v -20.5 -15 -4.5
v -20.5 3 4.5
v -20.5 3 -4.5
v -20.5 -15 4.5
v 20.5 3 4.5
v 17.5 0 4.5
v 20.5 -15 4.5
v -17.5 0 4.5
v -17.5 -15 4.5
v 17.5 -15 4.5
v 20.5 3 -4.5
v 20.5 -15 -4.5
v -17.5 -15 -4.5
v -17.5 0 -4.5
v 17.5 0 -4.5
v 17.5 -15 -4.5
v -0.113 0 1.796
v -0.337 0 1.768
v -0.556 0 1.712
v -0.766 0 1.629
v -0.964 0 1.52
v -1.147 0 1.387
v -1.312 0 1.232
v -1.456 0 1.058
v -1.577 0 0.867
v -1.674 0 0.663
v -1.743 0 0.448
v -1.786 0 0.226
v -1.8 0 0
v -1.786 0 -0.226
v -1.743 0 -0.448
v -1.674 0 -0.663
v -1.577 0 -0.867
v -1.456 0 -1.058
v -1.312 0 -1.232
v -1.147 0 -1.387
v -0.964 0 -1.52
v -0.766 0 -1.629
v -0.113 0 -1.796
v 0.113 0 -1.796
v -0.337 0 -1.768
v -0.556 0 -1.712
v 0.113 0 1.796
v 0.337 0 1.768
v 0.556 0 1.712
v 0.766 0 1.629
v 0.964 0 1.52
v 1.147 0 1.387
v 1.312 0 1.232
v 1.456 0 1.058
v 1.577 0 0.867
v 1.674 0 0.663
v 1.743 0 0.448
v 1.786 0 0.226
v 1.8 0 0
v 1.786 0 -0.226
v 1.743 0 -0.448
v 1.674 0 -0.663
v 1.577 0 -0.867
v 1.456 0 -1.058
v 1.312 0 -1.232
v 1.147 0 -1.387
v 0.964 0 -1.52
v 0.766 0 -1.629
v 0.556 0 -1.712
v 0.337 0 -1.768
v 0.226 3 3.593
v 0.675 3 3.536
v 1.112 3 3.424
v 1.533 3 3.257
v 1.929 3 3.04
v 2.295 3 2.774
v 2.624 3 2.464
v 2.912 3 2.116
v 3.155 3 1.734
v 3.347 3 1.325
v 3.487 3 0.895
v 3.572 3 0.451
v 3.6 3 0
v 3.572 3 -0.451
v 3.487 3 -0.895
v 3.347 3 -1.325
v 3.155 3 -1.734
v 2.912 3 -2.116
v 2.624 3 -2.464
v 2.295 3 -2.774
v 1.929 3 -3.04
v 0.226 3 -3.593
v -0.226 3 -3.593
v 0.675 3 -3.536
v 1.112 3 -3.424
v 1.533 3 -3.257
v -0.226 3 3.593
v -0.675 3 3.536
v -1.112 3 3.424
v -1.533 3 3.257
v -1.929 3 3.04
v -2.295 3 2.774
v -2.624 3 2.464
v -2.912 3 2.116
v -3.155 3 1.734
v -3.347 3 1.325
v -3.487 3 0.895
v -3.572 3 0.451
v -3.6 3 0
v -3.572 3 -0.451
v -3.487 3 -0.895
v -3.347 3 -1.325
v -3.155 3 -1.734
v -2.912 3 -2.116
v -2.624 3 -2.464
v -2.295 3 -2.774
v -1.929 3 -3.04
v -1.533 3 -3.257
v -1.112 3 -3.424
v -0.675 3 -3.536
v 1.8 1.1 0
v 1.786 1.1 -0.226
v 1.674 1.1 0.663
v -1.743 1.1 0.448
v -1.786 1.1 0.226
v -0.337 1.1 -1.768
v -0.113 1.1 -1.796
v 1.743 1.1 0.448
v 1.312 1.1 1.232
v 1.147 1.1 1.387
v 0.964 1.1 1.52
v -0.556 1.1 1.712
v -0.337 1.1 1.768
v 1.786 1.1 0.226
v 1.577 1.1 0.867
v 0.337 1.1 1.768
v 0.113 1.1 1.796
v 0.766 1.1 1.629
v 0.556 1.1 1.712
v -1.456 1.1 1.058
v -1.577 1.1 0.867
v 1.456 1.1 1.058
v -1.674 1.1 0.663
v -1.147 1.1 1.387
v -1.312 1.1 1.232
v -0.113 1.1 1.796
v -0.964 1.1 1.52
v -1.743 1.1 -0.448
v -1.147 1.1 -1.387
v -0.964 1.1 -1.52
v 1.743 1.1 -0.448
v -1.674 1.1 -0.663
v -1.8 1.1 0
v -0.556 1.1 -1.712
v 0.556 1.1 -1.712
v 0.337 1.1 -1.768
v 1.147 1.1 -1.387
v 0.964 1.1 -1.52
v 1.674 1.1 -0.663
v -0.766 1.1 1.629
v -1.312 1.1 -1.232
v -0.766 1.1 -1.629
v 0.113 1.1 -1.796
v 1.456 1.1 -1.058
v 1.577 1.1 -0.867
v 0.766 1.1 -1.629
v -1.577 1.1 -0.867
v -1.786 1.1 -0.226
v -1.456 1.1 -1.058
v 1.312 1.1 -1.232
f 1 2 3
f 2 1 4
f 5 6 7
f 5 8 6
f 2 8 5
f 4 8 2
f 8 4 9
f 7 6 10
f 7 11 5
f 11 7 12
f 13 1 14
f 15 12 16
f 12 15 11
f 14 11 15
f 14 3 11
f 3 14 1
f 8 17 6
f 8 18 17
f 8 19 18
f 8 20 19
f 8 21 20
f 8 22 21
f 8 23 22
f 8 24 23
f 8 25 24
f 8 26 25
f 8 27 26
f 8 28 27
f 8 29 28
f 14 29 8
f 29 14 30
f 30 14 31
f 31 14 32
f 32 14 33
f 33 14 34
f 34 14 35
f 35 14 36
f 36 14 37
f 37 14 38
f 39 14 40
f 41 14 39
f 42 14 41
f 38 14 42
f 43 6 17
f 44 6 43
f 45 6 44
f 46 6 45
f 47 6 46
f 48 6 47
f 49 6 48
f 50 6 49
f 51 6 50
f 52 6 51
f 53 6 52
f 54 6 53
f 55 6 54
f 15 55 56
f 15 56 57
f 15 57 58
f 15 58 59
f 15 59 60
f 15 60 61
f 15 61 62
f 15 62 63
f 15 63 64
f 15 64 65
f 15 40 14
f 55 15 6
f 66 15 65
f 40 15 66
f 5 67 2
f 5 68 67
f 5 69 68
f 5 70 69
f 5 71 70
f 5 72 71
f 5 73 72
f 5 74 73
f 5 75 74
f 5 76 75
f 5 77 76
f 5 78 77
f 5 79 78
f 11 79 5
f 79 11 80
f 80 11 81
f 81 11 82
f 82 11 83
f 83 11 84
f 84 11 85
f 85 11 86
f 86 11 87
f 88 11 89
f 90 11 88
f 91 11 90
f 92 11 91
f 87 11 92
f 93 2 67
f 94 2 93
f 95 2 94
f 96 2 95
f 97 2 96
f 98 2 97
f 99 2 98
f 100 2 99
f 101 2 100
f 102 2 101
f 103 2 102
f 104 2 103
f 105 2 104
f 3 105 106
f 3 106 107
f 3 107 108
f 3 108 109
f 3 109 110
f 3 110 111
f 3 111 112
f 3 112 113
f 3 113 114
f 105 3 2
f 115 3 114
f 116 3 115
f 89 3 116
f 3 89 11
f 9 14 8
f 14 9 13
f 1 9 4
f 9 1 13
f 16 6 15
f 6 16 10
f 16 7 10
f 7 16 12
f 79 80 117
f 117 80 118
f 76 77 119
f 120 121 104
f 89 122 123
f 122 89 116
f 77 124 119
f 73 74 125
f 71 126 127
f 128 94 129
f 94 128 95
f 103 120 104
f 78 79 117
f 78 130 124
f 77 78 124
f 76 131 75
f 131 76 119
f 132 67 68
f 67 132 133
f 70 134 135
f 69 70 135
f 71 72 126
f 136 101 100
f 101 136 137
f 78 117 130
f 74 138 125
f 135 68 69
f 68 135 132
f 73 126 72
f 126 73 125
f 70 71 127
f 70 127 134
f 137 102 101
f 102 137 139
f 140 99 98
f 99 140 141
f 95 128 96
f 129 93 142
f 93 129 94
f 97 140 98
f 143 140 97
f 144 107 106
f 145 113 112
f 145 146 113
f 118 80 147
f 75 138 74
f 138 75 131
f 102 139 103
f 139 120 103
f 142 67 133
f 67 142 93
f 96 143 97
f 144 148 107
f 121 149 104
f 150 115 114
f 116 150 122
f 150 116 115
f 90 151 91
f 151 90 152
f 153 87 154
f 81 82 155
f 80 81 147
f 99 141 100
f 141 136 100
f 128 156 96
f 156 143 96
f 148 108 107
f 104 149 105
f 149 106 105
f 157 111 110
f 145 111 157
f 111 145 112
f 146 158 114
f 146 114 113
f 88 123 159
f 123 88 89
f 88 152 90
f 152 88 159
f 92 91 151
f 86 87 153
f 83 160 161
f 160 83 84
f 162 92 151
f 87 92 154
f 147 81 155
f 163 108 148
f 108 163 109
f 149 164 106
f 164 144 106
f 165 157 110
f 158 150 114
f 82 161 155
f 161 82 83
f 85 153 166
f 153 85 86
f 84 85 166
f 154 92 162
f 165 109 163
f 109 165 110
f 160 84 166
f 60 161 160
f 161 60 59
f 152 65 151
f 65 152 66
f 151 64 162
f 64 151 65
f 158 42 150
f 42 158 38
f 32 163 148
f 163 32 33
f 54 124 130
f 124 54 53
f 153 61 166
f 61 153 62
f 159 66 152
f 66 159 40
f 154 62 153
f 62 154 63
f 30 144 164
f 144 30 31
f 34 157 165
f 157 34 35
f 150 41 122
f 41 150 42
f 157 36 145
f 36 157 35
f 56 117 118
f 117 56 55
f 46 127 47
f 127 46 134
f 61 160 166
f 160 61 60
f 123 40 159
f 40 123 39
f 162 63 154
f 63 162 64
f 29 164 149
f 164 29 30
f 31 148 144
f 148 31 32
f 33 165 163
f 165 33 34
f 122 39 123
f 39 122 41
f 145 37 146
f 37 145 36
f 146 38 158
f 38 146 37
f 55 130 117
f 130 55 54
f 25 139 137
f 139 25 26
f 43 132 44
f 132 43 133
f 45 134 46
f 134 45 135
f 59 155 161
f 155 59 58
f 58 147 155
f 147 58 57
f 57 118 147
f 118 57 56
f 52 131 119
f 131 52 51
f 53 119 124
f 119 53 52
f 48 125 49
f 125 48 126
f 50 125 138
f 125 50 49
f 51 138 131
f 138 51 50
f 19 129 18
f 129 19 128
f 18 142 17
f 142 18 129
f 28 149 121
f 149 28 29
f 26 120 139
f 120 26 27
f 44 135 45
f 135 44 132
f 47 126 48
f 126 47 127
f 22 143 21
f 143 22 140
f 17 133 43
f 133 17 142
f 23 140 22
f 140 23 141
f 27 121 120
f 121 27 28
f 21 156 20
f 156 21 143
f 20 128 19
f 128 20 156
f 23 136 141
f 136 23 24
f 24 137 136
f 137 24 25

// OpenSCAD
$fn = 50;


difference() {
	union() {
		translate(v = [-20.5000000000, 0.0000000000, -4.5000000000]) {
			cube(size = [41, 3, 9]);
		}
		translate(v = [-20.5000000000, -15.0000000000, -4.5000000000]) {
			cube(size = [3, 15, 9]);
		}
		translate(v = [17.5000000000, -15.0000000000, -4.5000000000]) {
			cube(size = [3, 15, 9]);
		}
	}
	union() {
		translate(v = [0, 3, 0]) {
			rotate(a = [-90, 0, 0]) {
				difference() {
					union() {
						translate(v = [0, 0, -21.0000000000]) {
							rotate(a = [0, 0, 0]) {
								difference() {
									union() {
										translate(v = [-1.8000000000, -3.0000000000, -0.3000000000]) {
											cube(size = [3.6000000000, 6.0000000000, 0.3000000000]);
										}
										translate(v = [-1.8000000000, -1.8000000000, -0.6000000000]) {
											cube(size = [3.6000000000, 3.6000000000, 0.3000000000]);
										}
										translate(v = [-1.8000000000, -3.0000000000, 2.5000000000]) {
											cube(size = [3.6000000000, 6.0000000000, 0.3000000000]);
										}
										translate(v = [-1.8000000000, -1.8000000000, 2.8000000000]) {
											cube(size = [3.6000000000, 3.6000000000, 0.3000000000]);
										}
										linear_extrude(height = 2.5000000000) {
											polygon(points = [[3.4620000000, 0.0000000000], [1.7310000000, 2.9981799479], [-1.7310000000, 2.9981799479], [-3.4620000000, 0.0000000000], [-1.7310000000, -2.9981799479], [1.7310000000, -2.9981799479]]);
										}
										translate(v = [-1.8000000000, -3.0000000000, -0.3000000000]) {
											cube(size = [3.6000000000, 6.0000000000, 0.3000000000]);
										}
										translate(v = [-1.8000000000, -1.8000000000, -0.6000000000]) {
											cube(size = [3.6000000000, 3.6000000000, 0.3000000000]);
										}
										translate(v = [-1.8000000000, -3.0000000000, 2.5000000000]) {
											cube(size = [3.6000000000, 6.0000000000, 0.3000000000]);
										}
										translate(v = [-1.8000000000, -1.8000000000, 2.8000000000]) {
											cube(size = [3.6000000000, 3.6000000000, 0.3000000000]);
										}
										translate(v = [-1.8000000000, -3.0000000000, -0.3000000000]) {
											cube(size = [3.6000000000, 6.0000000000, 0.3000000000]);
										}
										translate(v = [-1.8000000000, -1.8000000000, -0.6000000000]) {
											cube(size = [3.6000000000, 3.6000000000, 0.3000000000]);
										}
										translate(v = [-1.8000000000, -3.0000000000, 2.5000000000]) {
											cube(size = [3.6000000000, 6.0000000000, 0.3000000000]);
										}
										translate(v = [-1.8000000000, -1.8000000000, 2.8000000000]) {
											cube(size = [3.6000000000, 3.6000000000, 0.3000000000]);
										}
									}
									union();
								}
							}
						}
						translate(v = [0, 0, -21.0000000000]) {
							rotate(a = [0, 0, 0]) {
								difference() {
									union() {
										translate(v = [-1.8000000000, -3.0000000000, -0.3000000000]) {
											cube(size = [3.6000000000, 6.0000000000, 0.3000000000]);
										}
										translate(v = [-1.8000000000, -1.8000000000, -0.6000000000]) {
											cube(size = [3.6000000000, 3.6000000000, 0.3000000000]);
										}
										translate(v = [-1.8000000000, -3.0000000000, 2.5000000000]) {
											cube(size = [3.6000000000, 6.0000000000, 0.3000000000]);
										}
										translate(v = [-1.8000000000, -1.8000000000, 2.8000000000]) {
											cube(size = [3.6000000000, 3.6000000000, 0.3000000000]);
										}
										linear_extrude(height = 2.5000000000) {
											polygon(points = [[3.4620000000, 0.0000000000], [1.7310000000, 2.9981799479], [-1.7310000000, 2.9981799479], [-3.4620000000, 0.0000000000], [-1.7310000000, -2.9981799479], [1.7310000000, -2.9981799479]]);
										}
										translate(v = [-1.8000000000, -3.0000000000, -0.3000000000]) {
											cube(size = [3.6000000000, 6.0000000000, 0.3000000000]);
										}
										translate(v = [-1.8000000000, -1.8000000000, -0.6000000000]) {
											cube(size = [3.6000000000, 3.6000000000, 0.3000000000]);
										}
										translate(v = [-1.8000000000, -3.0000000000, 2.5000000000]) {
											cube(size = [3.6000000000, 6.0000000000, 0.3000000000]);
										}
										translate(v = [-1.8000000000, -1.8000000000, 2.8000000000]) {
											cube(size = [3.6000000000, 3.6000000000, 0.3000000000]);
										}
										translate(v = [-1.8000000000, -3.0000000000, -0.3000000000]) {
											cube(size = [3.6000000000, 6.0000000000, 0.3000000000]);
										}
										translate(v = [-1.8000000000, -1.8000000000, -0.6000000000]) {
											cube(size = [3.6000000000, 3.6000000000, 0.3000000000]);
										}
										translate(v = [-1.8000000000, -3.0000000000, 2.5000000000]) {
											cube(size = [3.6000000000, 6.0000000000, 0.3000000000]);
										}
										translate(v = [-1.8000000000, -1.8000000000, 2.8000000000]) {
											cube(size = [3.6000000000, 3.6000000000, 0.3000000000]);
										}
									}
									union();
								}
							}
						}
						translate(v = [0, 0, -21.0000000000]) {
							rotate(a = [0, 0, 0]) {
								difference() {
									union() {
										translate(v = [-1.8000000000, -3.0000000000, -0.3000000000]) {
											cube(size = [3.6000000000, 6.0000000000, 0.3000000000]);
										}
										translate(v = [-1.8000000000, -1.8000000000, -0.6000000000]) {
											cube(size = [3.6000000000, 3.6000000000, 0.3000000000]);
										}
										translate(v = [-1.8000000000, -3.0000000000, 2.5000000000]) {
											cube(size = [3.6000000000, 6.0000000000, 0.3000000000]);
										}
										translate(v = [-1.8000000000, -1.8000000000, 2.8000000000]) {
											cube(size = [3.6000000000, 3.6000000000, 0.3000000000]);
										}
										linear_extrude(height = 2.5000000000) {
											polygon(points = [[3.4620000000, 0.0000000000], [1.7310000000, 2.9981799479], [-1.7310000000, 2.9981799479], [-3.4620000000, 0.0000000000], [-1.7310000000, -2.9981799479], [1.7310000000, -2.9981799479]]);
										}
										translate(v = [-1.8000000000, -3.0000000000, -0.3000000000]) {
											cube(size = [3.6000000000, 6.0000000000, 0.3000000000]);
										}
										translate(v = [-1.8000000000, -1.8000000000, -0.6000000000]) {
											cube(size = [3.6000000000, 3.6000000000, 0.3000000000]);
										}
										translate(v = [-1.8000000000, -3.0000000000, 2.5000000000]) {
											cube(size = [3.6000000000, 6.0000000000, 0.3000000000]);
										}
										translate(v = [-1.8000000000, -1.8000000000, 2.8000000000]) {
											cube(size = [3.6000000000, 3.6000000000, 0.3000000000]);
										}
										translate(v = [-1.8000000000, -3.0000000000, -0.3000000000]) {
											cube(size = [3.6000000000, 6.0000000000, 0.3000000000]);
										}
										translate(v = [-1.8000000000, -1.8000000000, -0.6000000000]) {
											cube(size = [3.6000000000, 3.6000000000, 0.3000000000]);
										}
										translate(v = [-1.8000000000, -3.0000000000, 2.5000000000]) {
											cube(size = [3.6000000000, 6.0000000000, 0.3000000000]);
										}
										translate(v = [-1.8000000000, -1.8000000000, 2.8000000000]) {
											cube(size = [3.6000000000, 3.6000000000, 0.3000000000]);
										}
									}
									union();
								}
							}
						}
						translate(v = [0, 0, -21.0000000000]) {
							cylinder(h = 21, r = 1.5000000000);
						}
						translate(v = [0, 0, -1.9000000000]) {
							cylinder(h = 1.9000000000, r1 = 1.8000000000, r2 = 3.6000000000);
						}
						translate(v = [0, 0, -21.0000000000]) {
							cylinder(h = 21, r = 1.8000000000);
						}
						translate(v = [0, 0, -21.0000000000]) {
							cylinder(h = 21, r = 1.5000000000);
						}
					}
					union();
				}
			}
		}
	}
}
